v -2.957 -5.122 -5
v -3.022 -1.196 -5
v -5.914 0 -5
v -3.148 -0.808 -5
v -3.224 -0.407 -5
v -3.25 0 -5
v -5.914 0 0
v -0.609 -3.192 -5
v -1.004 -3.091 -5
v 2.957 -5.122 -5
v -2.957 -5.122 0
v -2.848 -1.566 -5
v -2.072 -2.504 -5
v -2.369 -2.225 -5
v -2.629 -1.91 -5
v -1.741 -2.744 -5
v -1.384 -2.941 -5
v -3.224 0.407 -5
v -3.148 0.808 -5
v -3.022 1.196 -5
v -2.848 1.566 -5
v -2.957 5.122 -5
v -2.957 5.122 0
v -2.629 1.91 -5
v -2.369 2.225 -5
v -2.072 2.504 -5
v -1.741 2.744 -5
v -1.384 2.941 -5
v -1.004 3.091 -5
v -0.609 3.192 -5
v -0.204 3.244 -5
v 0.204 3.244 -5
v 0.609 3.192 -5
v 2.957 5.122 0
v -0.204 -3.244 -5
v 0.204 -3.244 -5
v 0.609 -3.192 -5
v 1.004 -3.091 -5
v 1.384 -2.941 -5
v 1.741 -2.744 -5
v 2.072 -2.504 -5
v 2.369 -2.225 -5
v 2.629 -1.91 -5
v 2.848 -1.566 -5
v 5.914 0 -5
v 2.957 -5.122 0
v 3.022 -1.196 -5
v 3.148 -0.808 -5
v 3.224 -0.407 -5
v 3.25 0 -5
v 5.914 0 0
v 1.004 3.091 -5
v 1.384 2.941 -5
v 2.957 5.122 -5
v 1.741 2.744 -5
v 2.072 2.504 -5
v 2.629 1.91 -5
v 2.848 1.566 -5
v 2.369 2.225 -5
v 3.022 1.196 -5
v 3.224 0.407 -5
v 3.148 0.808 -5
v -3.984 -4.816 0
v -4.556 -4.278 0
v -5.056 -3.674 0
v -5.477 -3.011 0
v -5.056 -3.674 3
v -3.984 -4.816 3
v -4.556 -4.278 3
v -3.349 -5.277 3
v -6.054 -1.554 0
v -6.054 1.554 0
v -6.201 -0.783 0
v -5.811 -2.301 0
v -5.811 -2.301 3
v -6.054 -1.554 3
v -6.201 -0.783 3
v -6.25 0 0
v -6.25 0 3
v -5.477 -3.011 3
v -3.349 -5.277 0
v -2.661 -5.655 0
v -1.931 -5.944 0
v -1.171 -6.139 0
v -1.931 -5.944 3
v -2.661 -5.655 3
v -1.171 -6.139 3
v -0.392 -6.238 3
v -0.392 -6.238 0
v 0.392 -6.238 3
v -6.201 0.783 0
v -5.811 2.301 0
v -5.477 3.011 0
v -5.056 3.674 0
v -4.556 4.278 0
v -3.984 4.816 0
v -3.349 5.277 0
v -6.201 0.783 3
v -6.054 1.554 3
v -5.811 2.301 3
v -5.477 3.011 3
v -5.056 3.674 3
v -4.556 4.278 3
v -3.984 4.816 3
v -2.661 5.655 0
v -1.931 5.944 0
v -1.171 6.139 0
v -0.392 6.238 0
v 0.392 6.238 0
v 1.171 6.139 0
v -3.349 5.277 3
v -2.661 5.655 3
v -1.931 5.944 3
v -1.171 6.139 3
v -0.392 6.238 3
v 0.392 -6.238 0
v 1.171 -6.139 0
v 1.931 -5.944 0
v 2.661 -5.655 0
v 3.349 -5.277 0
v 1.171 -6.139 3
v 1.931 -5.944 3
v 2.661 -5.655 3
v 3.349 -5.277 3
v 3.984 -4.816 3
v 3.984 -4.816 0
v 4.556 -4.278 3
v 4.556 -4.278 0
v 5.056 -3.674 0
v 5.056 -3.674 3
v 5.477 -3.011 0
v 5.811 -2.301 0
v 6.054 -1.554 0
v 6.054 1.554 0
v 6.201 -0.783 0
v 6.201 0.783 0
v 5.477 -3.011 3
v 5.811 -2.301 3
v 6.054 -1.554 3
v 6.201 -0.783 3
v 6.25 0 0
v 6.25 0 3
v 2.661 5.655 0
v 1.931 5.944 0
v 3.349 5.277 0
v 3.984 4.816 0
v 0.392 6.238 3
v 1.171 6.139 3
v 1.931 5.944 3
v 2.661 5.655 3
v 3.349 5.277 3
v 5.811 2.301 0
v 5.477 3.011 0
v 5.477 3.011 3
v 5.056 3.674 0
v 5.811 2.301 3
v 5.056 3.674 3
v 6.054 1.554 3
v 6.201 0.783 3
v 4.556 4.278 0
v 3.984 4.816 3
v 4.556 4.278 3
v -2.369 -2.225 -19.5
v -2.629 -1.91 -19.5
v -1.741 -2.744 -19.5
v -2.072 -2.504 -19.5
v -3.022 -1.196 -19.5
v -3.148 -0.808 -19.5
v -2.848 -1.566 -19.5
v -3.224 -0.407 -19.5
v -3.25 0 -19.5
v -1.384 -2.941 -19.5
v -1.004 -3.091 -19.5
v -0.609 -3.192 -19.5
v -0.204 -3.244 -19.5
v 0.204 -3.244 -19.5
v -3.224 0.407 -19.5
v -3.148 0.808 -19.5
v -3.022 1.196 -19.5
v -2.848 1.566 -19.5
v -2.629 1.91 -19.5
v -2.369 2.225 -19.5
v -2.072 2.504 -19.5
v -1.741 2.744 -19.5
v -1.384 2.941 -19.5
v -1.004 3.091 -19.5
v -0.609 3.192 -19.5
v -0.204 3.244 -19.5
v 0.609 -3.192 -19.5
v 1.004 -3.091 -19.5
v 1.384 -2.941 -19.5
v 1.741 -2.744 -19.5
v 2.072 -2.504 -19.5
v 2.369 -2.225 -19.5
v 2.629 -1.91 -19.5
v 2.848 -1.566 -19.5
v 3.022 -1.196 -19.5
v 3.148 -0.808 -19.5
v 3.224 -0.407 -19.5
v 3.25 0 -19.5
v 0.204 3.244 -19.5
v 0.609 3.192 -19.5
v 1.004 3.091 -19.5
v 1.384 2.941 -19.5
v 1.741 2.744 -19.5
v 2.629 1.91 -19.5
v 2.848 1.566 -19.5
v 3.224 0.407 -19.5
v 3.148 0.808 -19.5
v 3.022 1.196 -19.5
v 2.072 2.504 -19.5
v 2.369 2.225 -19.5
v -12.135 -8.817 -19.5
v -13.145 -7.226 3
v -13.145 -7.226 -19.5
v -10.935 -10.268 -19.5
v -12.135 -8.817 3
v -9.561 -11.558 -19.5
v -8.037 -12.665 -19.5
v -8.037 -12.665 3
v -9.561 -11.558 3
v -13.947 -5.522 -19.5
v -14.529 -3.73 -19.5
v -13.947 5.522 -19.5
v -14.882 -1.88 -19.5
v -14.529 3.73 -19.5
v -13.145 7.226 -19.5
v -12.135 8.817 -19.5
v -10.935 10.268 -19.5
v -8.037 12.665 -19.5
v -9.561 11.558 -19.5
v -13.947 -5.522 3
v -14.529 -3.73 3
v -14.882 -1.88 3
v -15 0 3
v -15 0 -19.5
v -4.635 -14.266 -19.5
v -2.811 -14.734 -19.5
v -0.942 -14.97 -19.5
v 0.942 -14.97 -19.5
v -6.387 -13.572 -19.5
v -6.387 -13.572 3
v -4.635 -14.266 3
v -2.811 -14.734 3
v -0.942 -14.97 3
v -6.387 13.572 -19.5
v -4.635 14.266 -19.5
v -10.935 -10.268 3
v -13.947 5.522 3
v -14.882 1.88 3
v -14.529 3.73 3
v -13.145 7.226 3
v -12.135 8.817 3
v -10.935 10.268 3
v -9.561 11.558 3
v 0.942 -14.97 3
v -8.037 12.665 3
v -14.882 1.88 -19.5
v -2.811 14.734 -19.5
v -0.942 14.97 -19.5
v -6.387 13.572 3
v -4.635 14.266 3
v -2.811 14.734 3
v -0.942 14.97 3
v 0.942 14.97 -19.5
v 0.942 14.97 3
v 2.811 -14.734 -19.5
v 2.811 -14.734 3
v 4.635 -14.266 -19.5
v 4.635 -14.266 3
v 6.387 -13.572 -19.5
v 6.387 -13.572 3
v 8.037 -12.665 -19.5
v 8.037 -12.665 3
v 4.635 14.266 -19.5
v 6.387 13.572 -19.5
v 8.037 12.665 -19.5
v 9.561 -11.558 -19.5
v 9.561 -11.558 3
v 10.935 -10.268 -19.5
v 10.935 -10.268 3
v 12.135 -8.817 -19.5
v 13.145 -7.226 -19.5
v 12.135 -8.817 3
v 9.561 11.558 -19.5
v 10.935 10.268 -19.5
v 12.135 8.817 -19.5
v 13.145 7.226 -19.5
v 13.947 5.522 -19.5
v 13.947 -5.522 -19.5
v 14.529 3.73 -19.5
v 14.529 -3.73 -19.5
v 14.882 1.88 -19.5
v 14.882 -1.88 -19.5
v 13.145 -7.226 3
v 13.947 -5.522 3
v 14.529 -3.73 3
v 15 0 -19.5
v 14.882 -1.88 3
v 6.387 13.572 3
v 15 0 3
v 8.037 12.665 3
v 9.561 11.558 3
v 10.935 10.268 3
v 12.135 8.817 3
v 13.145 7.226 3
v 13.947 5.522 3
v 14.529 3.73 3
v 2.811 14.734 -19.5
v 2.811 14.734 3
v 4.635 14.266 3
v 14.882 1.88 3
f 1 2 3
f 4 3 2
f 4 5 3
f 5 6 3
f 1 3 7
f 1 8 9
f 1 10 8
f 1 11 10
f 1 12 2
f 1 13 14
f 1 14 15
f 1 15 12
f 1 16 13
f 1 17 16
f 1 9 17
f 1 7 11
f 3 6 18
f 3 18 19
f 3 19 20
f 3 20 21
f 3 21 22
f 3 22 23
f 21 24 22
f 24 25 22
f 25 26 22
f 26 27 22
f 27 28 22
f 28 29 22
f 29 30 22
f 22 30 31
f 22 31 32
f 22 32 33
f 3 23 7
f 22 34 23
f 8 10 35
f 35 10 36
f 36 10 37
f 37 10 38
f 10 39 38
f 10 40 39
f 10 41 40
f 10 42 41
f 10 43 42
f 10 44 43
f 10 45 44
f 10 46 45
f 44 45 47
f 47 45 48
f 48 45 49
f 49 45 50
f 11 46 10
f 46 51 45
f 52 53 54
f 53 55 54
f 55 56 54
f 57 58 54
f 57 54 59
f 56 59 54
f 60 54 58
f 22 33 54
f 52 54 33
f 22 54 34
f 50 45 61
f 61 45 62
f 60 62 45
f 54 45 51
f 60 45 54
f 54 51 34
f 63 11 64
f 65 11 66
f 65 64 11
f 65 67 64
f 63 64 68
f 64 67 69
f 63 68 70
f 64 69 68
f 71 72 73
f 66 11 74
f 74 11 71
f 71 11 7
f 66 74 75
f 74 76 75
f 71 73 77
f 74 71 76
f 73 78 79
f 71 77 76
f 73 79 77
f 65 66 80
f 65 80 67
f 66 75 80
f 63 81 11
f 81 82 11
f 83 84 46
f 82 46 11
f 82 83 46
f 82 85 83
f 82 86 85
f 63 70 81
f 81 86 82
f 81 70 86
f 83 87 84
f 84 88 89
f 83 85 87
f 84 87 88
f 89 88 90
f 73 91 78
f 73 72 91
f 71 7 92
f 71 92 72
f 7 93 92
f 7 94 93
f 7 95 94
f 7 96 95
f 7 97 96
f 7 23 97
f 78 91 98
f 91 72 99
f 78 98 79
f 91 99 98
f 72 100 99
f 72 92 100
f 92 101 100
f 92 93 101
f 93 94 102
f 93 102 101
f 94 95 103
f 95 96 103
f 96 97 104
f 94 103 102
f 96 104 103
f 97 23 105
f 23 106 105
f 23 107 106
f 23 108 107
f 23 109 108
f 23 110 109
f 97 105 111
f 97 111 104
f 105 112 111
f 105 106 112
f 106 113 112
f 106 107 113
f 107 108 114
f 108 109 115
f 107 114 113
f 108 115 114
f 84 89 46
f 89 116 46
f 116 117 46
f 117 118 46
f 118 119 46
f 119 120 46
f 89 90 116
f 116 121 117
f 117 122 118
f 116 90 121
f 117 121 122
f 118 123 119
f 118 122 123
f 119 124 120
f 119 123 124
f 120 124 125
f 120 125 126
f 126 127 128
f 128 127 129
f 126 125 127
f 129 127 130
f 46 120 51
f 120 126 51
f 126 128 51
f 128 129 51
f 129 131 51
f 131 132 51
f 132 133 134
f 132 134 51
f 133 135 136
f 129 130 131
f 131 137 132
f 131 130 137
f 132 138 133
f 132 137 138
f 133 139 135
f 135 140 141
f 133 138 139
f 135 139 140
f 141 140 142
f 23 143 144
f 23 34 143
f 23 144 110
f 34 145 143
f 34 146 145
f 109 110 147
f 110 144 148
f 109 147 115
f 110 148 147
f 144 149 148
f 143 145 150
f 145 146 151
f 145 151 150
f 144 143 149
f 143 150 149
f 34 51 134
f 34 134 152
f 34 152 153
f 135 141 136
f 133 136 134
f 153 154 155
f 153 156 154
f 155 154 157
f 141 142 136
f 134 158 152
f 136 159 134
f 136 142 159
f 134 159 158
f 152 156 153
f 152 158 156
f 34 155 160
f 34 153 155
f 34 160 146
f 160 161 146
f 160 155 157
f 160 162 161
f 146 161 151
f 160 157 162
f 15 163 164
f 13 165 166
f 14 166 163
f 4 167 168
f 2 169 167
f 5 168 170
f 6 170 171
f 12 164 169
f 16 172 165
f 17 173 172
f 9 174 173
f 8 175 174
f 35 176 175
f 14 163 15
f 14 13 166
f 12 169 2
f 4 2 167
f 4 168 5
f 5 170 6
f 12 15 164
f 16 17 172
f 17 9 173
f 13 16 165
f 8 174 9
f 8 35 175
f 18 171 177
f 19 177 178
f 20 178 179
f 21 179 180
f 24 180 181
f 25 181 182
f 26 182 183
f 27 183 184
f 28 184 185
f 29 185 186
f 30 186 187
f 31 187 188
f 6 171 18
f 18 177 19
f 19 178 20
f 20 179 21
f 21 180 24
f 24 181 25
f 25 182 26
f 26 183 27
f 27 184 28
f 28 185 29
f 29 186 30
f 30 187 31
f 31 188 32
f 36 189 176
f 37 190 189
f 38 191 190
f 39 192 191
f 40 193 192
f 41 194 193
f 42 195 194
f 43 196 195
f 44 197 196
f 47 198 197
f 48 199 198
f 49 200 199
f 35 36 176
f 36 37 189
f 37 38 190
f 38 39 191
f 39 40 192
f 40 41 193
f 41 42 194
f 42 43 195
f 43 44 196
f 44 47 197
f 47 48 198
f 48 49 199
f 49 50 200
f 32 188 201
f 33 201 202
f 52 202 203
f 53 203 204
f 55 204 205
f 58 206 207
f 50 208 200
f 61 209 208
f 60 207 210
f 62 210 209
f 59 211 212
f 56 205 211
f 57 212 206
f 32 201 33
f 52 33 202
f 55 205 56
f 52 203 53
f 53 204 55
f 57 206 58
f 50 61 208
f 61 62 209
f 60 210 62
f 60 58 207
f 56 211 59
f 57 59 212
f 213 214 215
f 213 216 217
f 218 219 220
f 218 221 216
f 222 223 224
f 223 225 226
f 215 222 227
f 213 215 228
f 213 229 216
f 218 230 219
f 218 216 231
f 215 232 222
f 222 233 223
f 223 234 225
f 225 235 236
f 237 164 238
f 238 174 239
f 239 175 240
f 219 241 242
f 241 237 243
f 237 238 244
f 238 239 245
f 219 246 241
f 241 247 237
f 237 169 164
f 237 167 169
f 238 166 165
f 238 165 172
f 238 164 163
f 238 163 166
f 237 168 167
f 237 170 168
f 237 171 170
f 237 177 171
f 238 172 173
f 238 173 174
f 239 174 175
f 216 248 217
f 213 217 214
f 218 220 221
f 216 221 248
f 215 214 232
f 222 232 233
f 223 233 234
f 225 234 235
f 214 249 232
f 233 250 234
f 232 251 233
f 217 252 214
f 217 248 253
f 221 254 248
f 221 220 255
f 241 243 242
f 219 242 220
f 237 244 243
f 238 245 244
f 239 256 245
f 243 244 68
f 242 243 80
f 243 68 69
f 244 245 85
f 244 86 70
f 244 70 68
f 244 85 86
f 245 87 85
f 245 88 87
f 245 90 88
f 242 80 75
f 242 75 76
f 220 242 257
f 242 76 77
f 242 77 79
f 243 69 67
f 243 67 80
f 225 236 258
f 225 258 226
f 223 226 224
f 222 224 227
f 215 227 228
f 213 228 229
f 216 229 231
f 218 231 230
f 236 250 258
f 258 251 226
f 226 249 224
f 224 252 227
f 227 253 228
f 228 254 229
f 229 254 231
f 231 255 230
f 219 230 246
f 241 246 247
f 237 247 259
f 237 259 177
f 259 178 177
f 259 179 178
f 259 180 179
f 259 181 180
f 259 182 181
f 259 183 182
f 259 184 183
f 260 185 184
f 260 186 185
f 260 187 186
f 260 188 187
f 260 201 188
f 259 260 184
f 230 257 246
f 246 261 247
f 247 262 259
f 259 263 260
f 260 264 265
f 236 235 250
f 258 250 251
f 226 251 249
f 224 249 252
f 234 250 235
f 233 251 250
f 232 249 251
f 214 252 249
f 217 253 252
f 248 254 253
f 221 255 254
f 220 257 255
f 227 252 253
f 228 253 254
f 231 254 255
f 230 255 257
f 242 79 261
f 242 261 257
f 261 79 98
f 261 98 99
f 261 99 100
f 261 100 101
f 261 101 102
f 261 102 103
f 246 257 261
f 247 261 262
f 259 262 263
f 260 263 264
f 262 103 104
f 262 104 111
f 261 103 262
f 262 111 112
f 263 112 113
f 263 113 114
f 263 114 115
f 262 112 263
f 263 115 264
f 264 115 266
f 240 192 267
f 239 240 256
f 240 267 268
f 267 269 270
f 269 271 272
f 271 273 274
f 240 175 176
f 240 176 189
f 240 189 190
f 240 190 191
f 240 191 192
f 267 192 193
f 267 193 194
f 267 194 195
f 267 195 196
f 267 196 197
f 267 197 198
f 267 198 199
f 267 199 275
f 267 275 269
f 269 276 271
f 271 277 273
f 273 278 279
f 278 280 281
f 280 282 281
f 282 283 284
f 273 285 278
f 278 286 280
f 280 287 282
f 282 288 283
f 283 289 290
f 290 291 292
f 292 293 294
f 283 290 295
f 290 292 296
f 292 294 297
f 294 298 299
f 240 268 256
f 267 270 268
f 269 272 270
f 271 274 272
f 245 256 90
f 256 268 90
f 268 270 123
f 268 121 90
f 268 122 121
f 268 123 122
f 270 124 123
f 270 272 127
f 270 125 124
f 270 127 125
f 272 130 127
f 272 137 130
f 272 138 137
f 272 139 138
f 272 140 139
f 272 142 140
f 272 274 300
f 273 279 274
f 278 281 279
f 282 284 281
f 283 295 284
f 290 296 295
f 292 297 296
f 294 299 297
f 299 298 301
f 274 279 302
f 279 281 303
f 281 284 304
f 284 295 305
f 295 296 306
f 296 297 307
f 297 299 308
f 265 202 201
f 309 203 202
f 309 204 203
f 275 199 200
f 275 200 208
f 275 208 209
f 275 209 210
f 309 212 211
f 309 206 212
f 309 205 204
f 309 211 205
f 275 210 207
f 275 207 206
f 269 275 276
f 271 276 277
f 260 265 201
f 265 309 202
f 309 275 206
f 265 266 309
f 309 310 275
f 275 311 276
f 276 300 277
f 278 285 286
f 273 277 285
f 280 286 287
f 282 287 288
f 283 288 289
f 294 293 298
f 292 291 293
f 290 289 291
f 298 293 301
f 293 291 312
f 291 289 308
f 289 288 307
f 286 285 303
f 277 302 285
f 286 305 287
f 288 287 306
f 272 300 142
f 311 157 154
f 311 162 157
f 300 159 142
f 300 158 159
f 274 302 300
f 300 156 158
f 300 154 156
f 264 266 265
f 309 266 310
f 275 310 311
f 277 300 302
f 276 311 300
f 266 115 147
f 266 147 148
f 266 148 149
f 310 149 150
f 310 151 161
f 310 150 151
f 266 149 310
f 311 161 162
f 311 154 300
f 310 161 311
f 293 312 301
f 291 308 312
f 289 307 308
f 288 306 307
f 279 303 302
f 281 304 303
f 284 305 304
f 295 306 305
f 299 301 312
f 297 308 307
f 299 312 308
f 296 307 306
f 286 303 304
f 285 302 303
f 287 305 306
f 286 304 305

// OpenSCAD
$fn = 50;

difference() {
	union() {
		translate(v = [0, 0, -19.5]) {
			cylinder(h = 22.5, r = 15.0);
		}
	}
	union() {
		translate(v = [0, 0, 0]) {
			rotate(a = [0, 0, 0]) {
				difference() {
					union() {
						translate(v = [0, 0, -5]) {
							linear_extrude(height = 5) {
								polygon(points = [[5.914249999999999, 0.0], [2.957125, 5.1218907443321156], [-2.9571249999999982, 5.1218907443321156], [-5.914249999999999, 7.242867331857232e-16], [-2.9571250000000022, -5.121890744332115], [2.9571249999999956, -5.121890744332118]]);
							}
						}
					}
					union();
				}
			}
		}
		#cylinder(h = 3, r = 6.25);
		#translate(v = [0, 0, -100.0]) {
			cylinder(h = 200, r = 3.25);
		}
	}
}
